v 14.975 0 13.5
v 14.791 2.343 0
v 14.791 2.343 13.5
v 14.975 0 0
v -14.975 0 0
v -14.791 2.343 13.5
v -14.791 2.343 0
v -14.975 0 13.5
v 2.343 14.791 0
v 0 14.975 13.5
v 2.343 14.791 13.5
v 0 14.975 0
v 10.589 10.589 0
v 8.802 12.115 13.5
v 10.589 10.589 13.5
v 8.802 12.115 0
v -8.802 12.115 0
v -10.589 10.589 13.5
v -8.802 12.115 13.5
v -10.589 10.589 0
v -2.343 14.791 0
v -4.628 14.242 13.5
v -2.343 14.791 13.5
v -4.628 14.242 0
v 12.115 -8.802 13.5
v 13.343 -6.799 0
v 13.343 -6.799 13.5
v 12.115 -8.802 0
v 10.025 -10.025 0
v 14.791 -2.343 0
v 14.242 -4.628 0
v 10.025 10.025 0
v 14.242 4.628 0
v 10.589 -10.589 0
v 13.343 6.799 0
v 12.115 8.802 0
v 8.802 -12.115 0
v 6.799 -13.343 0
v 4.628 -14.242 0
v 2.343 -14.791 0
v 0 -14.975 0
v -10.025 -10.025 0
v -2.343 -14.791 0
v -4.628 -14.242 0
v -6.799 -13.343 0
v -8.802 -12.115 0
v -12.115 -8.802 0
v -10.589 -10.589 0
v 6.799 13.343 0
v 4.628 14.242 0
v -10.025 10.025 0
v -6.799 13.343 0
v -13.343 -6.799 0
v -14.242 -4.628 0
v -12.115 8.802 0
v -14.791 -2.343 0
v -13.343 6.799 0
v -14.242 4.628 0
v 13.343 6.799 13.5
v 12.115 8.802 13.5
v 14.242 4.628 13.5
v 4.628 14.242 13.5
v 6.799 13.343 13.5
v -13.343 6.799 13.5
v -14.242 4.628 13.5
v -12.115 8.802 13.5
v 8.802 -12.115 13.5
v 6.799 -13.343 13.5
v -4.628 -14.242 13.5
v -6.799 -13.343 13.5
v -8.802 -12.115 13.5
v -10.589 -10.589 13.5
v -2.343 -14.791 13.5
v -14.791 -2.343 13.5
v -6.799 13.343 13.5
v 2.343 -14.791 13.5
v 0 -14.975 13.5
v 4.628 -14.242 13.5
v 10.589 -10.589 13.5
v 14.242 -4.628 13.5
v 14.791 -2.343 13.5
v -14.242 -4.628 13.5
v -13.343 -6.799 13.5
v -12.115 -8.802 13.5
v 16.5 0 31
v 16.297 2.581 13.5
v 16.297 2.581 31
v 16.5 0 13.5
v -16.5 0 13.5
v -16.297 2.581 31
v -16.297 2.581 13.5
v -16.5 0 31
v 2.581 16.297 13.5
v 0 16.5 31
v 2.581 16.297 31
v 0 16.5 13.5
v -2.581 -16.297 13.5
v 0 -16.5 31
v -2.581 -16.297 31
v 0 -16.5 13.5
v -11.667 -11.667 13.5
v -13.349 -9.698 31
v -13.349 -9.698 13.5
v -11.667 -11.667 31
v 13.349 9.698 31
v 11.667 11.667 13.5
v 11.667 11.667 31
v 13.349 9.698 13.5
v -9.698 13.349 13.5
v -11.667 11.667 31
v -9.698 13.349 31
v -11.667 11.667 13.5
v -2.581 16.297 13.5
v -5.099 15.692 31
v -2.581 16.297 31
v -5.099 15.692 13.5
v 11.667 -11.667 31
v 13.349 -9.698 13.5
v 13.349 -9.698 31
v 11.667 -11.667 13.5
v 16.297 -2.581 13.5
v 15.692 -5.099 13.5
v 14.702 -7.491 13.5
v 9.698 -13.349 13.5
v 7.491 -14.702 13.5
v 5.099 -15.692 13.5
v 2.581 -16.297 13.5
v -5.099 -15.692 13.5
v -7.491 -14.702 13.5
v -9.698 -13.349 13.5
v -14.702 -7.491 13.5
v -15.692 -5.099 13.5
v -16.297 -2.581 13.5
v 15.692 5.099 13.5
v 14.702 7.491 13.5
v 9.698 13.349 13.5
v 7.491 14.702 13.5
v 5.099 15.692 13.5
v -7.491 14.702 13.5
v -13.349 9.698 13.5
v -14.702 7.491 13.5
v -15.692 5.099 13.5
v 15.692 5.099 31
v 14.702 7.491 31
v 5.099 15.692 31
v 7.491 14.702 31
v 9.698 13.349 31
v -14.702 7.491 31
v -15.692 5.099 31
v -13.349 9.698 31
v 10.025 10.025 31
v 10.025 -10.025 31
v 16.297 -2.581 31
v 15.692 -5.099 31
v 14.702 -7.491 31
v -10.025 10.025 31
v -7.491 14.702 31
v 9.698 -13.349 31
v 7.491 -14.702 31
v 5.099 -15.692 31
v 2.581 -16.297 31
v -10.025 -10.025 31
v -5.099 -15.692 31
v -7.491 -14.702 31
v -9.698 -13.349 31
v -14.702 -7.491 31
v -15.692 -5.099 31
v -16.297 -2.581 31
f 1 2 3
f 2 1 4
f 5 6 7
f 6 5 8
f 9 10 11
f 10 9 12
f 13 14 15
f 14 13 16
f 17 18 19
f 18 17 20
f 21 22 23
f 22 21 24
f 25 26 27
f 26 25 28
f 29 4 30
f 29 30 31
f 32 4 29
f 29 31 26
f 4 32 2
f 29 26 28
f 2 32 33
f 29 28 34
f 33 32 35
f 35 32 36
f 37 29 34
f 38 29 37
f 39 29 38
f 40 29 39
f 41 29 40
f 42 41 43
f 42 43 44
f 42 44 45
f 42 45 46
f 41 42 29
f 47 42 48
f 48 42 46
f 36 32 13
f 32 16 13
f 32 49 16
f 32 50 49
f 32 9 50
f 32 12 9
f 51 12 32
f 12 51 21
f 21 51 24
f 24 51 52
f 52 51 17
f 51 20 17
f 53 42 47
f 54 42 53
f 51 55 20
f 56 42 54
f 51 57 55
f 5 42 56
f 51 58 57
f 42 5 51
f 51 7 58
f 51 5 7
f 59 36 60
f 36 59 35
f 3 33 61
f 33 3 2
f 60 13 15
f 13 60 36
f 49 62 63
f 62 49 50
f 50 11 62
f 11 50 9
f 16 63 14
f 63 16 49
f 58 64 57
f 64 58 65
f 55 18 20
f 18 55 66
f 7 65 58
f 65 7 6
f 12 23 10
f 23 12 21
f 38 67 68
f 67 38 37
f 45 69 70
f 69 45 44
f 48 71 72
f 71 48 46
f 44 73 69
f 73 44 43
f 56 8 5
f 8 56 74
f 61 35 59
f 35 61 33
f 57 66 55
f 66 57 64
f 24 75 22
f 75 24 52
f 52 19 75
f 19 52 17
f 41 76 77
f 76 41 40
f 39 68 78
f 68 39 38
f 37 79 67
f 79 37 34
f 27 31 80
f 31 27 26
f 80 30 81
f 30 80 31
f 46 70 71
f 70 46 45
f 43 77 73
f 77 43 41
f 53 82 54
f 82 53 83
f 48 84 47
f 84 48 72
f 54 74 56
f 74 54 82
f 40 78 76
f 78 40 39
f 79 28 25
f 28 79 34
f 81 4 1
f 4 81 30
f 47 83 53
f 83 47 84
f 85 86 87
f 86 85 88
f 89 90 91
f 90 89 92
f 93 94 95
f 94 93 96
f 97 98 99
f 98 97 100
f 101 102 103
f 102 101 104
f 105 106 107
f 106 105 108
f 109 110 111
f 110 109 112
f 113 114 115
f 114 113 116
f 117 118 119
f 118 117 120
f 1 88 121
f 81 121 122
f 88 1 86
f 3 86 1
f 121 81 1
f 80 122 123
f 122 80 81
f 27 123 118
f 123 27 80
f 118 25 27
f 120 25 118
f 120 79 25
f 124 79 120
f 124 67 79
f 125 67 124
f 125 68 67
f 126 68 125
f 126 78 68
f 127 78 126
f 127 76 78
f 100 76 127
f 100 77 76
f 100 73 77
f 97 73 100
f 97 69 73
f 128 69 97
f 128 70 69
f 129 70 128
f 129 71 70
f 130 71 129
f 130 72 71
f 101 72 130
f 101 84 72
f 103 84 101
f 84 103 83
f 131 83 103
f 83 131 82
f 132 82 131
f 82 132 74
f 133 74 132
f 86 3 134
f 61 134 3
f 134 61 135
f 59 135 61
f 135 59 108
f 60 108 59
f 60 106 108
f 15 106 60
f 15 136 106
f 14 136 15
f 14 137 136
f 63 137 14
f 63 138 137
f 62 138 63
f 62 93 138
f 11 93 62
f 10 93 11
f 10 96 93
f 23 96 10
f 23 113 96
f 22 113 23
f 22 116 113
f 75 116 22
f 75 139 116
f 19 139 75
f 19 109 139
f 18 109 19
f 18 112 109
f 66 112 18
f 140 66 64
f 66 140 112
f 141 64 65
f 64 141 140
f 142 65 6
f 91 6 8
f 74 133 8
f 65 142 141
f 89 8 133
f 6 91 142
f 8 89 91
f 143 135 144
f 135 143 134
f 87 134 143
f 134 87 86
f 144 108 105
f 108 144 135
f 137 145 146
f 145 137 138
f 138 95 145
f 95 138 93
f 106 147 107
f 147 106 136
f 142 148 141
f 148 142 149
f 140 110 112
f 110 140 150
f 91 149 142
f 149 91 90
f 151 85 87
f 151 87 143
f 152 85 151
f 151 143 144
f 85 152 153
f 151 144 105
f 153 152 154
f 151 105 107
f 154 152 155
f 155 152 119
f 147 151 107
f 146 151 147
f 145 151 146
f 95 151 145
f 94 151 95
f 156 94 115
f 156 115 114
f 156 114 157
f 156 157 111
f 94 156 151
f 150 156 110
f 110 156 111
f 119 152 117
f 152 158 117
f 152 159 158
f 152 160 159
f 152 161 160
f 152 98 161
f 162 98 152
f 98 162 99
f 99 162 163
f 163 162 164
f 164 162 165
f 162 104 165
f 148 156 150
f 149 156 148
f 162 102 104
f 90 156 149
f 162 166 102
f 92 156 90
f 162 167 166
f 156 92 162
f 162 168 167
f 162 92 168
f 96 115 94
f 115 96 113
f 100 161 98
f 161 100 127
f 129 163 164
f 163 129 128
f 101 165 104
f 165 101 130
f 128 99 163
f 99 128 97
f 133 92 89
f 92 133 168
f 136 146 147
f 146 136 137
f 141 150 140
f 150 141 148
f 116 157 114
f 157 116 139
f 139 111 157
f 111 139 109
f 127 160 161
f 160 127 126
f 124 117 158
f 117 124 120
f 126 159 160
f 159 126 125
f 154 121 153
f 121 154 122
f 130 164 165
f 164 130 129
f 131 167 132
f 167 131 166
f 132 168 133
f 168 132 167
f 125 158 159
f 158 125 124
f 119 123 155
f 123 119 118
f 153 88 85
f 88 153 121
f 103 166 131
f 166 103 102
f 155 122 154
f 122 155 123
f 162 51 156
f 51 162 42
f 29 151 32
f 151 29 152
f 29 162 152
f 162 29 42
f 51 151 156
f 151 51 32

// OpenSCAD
difference(){
   union(){
   translate([0,0,0])cylinder(r=29.95/2, h=15, $fn=40);
   translate([0,0,13.5])cylinder(r=33/2, h=15-13.5+13+3, $fn=40);
       
   }
 translate([-20.05/2,-20.05/2,-1])cube([20.05,20.05,42]);   
}
